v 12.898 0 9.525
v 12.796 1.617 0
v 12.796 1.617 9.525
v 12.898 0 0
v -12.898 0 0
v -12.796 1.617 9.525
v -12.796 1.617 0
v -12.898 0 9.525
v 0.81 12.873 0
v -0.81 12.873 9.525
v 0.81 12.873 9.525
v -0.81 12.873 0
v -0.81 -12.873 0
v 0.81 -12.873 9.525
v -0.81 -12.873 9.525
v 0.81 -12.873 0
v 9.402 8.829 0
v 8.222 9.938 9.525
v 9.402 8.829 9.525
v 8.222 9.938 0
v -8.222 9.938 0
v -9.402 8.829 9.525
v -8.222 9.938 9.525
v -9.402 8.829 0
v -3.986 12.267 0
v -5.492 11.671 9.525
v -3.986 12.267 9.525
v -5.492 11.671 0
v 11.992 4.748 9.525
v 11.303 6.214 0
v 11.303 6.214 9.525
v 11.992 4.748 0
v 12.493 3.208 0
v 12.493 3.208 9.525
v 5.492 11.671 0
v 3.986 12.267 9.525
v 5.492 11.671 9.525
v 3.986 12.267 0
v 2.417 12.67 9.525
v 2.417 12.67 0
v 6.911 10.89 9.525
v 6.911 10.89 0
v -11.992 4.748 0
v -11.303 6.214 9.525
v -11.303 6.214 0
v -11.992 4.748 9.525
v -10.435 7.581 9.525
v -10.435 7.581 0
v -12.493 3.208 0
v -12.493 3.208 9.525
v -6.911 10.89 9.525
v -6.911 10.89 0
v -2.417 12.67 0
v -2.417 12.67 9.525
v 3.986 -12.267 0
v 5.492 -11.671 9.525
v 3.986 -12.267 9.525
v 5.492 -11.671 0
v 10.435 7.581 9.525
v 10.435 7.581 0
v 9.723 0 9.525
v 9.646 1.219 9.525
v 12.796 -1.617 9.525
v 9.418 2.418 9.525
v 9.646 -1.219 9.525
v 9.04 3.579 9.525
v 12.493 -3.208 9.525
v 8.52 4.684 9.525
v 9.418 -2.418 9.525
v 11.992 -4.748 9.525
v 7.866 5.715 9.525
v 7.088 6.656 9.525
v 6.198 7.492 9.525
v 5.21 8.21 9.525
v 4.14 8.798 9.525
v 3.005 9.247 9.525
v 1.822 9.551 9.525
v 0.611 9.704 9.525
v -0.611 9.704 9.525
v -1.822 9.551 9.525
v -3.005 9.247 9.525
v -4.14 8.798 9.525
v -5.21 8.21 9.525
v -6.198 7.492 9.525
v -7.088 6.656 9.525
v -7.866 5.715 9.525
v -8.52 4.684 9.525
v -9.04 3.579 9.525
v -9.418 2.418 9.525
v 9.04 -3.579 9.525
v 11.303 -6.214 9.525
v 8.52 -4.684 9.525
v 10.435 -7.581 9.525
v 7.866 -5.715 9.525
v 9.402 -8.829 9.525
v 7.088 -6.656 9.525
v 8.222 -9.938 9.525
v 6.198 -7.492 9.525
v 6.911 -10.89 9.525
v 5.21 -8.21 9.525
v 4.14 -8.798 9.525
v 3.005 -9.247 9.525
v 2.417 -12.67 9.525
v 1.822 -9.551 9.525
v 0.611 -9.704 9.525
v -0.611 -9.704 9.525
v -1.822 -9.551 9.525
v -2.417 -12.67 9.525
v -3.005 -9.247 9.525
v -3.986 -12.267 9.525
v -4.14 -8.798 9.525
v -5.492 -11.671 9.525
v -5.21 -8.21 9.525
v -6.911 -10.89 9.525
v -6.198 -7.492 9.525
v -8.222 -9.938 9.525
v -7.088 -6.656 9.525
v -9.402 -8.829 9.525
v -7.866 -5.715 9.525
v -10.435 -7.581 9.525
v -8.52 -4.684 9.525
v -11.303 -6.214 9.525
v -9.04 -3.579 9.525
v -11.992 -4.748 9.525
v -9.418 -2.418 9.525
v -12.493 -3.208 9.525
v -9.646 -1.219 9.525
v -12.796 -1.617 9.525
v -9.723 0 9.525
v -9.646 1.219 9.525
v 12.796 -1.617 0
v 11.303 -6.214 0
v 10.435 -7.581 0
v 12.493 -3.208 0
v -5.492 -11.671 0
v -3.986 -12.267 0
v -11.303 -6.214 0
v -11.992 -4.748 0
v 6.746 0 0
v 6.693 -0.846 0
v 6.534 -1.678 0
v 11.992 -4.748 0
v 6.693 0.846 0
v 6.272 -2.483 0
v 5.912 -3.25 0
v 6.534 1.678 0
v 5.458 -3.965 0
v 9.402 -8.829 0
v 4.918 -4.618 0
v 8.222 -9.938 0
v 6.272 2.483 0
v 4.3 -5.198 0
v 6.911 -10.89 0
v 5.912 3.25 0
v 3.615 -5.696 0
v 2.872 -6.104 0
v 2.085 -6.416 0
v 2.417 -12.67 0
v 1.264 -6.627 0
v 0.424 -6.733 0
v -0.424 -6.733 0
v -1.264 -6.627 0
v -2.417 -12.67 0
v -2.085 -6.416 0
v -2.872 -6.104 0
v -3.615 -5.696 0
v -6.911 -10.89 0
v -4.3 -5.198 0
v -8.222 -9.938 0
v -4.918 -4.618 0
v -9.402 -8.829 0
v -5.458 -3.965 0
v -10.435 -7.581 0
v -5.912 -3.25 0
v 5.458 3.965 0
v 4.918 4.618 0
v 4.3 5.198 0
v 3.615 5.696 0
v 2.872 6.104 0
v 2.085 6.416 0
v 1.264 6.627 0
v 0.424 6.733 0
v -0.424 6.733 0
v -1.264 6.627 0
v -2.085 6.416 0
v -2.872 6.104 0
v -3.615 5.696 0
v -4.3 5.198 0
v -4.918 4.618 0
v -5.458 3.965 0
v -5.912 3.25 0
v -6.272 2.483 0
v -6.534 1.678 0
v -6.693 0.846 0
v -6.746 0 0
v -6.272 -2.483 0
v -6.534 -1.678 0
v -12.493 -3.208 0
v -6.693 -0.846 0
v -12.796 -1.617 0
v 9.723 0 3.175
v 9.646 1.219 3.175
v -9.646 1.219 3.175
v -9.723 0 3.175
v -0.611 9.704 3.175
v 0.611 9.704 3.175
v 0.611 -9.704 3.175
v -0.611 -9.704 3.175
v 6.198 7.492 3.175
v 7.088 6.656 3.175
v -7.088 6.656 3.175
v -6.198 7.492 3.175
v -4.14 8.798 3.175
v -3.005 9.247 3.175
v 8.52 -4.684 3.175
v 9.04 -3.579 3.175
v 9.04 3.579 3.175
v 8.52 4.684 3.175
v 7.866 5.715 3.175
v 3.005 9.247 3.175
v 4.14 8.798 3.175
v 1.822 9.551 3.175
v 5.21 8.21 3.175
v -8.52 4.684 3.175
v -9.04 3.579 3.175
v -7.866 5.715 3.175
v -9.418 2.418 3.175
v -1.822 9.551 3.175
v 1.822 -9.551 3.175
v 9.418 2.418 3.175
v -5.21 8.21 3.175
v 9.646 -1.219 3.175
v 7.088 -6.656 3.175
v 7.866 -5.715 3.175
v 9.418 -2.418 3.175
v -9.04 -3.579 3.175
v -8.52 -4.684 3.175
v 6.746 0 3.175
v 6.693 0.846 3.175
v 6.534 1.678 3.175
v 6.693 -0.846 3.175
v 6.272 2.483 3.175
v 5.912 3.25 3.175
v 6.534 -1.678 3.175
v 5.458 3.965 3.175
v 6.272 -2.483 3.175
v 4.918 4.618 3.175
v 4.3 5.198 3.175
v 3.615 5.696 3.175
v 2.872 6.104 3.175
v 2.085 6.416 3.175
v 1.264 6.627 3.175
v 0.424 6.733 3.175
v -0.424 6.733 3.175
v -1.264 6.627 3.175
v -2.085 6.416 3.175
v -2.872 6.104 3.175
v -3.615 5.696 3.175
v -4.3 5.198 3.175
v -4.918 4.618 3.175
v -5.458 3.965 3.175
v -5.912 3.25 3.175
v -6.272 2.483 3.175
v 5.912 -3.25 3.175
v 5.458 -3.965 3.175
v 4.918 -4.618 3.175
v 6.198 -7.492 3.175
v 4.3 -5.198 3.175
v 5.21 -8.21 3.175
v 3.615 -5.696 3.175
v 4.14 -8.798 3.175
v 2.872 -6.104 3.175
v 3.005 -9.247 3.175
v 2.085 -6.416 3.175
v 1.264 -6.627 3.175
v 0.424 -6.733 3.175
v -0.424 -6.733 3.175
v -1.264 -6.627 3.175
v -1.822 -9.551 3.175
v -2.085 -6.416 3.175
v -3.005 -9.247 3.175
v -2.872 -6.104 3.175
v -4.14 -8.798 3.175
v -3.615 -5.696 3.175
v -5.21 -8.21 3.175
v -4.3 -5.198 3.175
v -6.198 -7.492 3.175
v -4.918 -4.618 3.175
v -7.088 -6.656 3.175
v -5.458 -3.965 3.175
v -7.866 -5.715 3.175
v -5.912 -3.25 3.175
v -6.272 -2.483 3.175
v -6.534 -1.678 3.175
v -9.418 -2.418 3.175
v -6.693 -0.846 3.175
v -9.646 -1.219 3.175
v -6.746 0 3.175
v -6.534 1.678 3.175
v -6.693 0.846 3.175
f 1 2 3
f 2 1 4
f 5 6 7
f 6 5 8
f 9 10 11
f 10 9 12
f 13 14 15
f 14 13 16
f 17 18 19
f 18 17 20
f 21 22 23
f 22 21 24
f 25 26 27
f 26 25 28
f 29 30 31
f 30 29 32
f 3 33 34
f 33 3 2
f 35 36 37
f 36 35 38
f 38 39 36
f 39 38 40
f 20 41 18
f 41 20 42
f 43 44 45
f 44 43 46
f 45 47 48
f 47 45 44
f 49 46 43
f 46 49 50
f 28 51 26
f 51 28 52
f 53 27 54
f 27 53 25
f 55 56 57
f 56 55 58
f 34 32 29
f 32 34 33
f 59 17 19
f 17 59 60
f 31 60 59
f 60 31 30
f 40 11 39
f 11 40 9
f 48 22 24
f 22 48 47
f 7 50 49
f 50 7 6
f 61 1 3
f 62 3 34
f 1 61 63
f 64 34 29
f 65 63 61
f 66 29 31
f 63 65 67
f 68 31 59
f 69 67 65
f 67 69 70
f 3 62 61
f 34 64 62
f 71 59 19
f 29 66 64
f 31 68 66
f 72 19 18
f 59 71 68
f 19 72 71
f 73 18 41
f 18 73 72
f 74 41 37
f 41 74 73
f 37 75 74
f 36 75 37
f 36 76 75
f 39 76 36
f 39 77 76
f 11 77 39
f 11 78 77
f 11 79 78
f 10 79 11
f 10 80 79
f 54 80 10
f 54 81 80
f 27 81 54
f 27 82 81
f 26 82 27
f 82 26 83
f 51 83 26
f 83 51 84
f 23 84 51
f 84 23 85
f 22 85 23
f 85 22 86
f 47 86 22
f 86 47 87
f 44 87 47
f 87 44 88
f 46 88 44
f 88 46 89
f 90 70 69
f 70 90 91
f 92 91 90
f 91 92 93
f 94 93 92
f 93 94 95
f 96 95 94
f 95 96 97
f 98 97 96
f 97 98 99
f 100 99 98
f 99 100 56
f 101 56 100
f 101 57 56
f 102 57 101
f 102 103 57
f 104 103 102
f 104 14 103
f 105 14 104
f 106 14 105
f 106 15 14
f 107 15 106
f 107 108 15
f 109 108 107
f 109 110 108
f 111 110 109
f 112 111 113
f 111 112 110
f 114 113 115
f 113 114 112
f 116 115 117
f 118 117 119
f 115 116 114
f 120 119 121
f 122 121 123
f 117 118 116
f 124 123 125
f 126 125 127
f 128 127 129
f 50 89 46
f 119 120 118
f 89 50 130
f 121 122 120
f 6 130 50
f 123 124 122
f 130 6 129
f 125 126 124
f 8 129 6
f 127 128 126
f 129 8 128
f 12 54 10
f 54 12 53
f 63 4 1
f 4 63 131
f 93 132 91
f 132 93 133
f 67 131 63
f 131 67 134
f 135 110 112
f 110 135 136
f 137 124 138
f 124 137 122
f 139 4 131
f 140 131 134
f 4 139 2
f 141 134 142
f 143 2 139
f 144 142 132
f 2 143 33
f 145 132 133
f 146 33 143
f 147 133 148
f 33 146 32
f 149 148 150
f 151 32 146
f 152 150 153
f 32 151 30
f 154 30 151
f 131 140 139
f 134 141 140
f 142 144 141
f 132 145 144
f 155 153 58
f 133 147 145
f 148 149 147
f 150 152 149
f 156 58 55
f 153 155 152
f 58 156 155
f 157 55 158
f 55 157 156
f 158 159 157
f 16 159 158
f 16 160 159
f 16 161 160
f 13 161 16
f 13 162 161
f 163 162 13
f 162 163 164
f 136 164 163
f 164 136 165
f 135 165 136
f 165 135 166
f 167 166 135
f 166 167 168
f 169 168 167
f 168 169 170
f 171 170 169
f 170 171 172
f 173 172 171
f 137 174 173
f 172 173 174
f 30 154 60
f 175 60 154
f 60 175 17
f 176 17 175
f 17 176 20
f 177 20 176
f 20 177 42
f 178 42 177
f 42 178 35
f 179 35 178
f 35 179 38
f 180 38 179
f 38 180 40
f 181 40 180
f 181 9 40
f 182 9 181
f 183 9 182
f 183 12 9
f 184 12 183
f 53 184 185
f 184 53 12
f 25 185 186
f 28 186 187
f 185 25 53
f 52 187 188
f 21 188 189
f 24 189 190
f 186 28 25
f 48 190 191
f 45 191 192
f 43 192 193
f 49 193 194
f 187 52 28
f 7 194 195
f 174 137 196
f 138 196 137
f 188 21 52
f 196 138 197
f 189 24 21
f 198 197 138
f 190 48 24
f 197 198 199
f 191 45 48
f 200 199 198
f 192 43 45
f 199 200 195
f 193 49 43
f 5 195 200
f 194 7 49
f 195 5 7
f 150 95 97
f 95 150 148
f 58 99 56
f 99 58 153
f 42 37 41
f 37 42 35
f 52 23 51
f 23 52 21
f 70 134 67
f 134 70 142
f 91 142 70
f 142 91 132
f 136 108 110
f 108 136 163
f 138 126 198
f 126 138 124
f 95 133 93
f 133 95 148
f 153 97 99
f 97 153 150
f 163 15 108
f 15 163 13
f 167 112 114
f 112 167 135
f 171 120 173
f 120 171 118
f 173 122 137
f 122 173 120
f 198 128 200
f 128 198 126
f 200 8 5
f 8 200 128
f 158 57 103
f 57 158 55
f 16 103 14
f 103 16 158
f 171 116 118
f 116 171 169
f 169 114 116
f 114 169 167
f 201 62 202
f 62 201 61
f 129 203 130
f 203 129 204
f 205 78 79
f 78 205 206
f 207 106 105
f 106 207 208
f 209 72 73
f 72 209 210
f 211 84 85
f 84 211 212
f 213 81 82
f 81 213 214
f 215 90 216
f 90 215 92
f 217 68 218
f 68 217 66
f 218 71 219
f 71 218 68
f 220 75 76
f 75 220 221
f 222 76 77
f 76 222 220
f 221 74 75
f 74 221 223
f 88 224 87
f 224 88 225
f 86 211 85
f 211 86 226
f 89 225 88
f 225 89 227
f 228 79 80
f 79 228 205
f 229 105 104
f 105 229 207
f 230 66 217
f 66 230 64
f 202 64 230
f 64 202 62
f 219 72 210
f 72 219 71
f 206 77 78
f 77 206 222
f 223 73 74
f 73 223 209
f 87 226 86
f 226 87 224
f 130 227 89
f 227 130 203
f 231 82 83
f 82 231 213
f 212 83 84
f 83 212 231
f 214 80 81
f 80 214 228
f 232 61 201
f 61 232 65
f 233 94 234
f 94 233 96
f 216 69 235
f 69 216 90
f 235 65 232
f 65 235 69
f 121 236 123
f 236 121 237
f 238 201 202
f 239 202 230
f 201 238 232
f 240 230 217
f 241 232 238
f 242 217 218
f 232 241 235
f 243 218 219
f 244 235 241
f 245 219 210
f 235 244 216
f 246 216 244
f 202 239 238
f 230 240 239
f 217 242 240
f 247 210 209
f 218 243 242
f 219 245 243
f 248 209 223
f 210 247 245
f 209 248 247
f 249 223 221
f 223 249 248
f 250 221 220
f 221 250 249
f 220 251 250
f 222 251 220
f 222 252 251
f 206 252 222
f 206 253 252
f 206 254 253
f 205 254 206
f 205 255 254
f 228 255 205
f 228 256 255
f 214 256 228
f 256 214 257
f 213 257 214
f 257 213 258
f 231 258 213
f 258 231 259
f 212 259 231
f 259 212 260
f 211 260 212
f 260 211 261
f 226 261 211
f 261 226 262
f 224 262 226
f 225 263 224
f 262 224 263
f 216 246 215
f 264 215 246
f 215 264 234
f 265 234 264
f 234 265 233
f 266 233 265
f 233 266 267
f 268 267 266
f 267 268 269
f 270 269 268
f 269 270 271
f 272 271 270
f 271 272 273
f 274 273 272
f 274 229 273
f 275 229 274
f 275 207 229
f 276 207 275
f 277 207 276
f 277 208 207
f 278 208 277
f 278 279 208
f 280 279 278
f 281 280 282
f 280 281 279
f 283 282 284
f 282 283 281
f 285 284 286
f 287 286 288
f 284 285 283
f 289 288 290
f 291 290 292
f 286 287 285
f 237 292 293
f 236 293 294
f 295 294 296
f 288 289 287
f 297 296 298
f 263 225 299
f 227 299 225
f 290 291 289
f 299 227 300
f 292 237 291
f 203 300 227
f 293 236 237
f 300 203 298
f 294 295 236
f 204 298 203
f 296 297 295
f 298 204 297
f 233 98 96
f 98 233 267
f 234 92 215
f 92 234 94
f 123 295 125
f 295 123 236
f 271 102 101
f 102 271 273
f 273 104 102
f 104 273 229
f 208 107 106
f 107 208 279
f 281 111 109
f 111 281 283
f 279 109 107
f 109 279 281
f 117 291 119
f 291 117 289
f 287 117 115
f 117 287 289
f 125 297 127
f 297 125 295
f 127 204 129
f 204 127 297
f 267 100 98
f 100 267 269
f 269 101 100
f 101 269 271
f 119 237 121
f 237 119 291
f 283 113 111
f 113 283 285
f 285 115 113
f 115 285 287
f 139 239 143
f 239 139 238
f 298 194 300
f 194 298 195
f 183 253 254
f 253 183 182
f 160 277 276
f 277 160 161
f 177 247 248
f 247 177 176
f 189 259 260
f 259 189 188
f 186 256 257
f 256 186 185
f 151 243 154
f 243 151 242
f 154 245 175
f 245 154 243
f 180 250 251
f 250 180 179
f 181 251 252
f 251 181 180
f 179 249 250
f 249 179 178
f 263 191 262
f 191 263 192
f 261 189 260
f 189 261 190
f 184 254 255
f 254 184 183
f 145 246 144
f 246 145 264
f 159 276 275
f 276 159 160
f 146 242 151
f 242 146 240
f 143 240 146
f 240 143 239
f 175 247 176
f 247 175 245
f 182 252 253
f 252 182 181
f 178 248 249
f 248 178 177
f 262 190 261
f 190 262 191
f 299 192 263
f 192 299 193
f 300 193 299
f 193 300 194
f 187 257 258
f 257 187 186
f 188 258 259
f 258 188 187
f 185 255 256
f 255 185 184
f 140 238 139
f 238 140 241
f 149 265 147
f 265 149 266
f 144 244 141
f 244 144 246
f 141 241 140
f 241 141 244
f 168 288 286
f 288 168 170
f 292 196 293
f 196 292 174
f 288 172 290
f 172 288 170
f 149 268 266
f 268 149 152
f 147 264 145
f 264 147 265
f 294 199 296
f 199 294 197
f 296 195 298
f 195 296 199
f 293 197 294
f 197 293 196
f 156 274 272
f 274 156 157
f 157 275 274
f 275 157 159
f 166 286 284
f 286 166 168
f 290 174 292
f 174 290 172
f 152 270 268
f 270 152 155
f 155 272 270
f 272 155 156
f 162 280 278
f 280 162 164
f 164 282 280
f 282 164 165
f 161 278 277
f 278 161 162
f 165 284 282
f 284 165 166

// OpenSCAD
/*************************************************************************** 
Spring seat to maintain spring alignment and even pressure when compressed.
Author: Mike Thompson (thingyverse: mike_linus)
Date Last Modified: 16/03/2013
Description: change the variable values to print an inside or outside seat of the required dimensions.  The inside seat is more compact for tighter spaces.  The outside version hides the base of the spring for but looks chunkier.
****************************************************************************/

// From: https://www.thingiverse.com/thing:62357

// Bolt Hole Free Fit diameters from:
// https://littlemachineshop.com/reference/tapdrill.php

/*globals*/
mmPerInch = 25.4;
resolution=50;
bolt_hole_radius= 0.5 * (0.5312) * mmPerInch;

// for Lowes Hillman 543018 23/32 x 3 1/2 x 0.041"
// should also work with Century Spring C-756, which has same dimensions.

//seat_radius=(0.625) * mmPerInch; // (inside)
//seat_radius=0.5 * (23/32) * mmPerInch; // (outside) 
seat_radius=0.5 * (0.7656) * mmPerInch; // (outside) 
support_height=(3/8) * mmPerInch;

//"inside" or "outside"
//seat_type="inside";
seat_type="outside";
thickness=(1/8)*mmPerInch;

$fn=resolution;

module base(){
	cylinder(r=seat_radius,h=thickness);
	cylinder(r=seat_radius-thickness-0.25,h=support_height);
}

if (seat_type=="inside"){
	difference(){
		base();
		cylinder(r=bolt_hole_radius,h=support_height);
	}
}
else {
	difference(){
		cylinder(r=seat_radius+thickness,h=support_height);
		translate([0,0,thickness])cylinder(r=seat_radius,h=support_height);
		cylinder(r=bolt_hole_radius,h=support_height);
	}
}
